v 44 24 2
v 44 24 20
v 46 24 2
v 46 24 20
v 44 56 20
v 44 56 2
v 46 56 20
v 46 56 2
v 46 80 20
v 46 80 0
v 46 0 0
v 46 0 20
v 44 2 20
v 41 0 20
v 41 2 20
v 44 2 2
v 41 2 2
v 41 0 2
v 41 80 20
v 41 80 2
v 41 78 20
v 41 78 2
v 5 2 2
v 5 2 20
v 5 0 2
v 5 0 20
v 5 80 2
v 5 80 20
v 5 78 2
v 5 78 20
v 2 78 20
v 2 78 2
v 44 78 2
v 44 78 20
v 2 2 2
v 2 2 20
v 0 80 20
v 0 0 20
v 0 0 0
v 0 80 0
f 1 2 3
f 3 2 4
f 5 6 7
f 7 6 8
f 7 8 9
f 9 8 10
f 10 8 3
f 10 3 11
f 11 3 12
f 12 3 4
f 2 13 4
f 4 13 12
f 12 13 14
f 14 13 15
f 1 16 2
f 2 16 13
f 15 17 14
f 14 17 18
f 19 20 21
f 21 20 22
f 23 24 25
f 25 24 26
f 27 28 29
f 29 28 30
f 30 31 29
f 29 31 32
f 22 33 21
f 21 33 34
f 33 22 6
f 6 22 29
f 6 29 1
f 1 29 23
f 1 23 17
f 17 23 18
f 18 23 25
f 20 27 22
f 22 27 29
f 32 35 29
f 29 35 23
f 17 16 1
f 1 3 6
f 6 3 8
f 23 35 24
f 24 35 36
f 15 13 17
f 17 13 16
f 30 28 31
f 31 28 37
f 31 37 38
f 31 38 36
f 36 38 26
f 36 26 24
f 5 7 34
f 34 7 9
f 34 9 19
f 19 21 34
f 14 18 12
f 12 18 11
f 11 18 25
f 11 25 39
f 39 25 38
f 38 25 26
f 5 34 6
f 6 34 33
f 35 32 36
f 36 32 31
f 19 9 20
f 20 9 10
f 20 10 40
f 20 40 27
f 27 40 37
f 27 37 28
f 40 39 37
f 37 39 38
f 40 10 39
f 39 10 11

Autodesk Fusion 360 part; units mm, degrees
sketch "Sketch1" plane through (0, 0, 0) normal (0, 0, 1) x (1, 0, 0)
  line L0 (0, 0) -> (46, 0)
  line L1 (46, 0) -> (46, 80)
  line L2 (46, 80) -> (0, 80)
  line L3 (0, 80) -> (0, 0)
  dimension "d1" = 46
  dimension "d2" = 80
extrude "Extrude1" add sketch "Sketch1" along normal blind 20
shell "Shell1" thickness 2 removed faces 1 at (15.3333, 53.3333, 20)
sketch "Sketch2" plane through (0, 0, 0) normal (0, -1, 0) x (1, 0, 0)
  line L0 (0, 0) -> (46, 0)
  line L1 (46, 0) -> (46, 20)
  line L2 (46, 20) -> (0, 20)
  line L3 (0, 20) -> (0, 0)
  line L4 (46, 20) -> (41, 20)
  line L5 (41, 20) -> (41, -16.068)
  line L6 (41, -16.068) -> (46, -16.068)
  line L7 (46, -16.068) -> (46, 20)
  line L8 (0, 0) -> (5, 0)
  line L9 (5, 0) -> (5, 36.068)
  line L10 (5, 36.068) -> (0, 36.068)
  line L11 (0, 36.068) -> (0, 0)
  line L12 (46, 0) -> (0, 0)
  line L13 (0, 0) -> (0, 2)
  line L14 (0, 2) -> (46, 2)
  line L15 (46, 2) -> (46, 0)
  dimension "d6" = 5
  dimension "d7" = 5
  dimension "d8" = 2
extrude "Extrude2" cut sketch "Sketch2" against normal blind 155 contours L2 L5 L9 L14
sketch "Sketch3" plane through (46, 0, 0) normal (1, 0, 0) x (0, 1, 0)
  line L0 (0, 0) -> (80, 0)
  line L1 (80, 0) -> (80, 20)
  line L2 (80, 20) -> (0, 20)
  line L3 (0, 20) -> (0, 0)
  line L4 (80, 0) -> (56, 0)
  line L5 (56, 0) -> (56, 36.068)
  line L6 (56, 36.068) -> (80, 36.068)
  line L7 (80, 36.068) -> (80, 0)
  line L8 (0, 20) -> (24, 20)
  line L9 (24, 20) -> (24, -16.068)
  line L10 (24, -16.068) -> (0, -16.068)
  line L11 (0, -16.068) -> (0, 20)
  line L12 (0, 0) -> (142, 0)
  line L13 (142, 0) -> (142, 2)
  line L14 (142, 2) -> (0, 2)
  line L15 (0, 2) -> (0, 0)
  dimension "d11" = 24
  dimension "d12" = 24
  dimension "d13" = 2
extrude "Extrude3" cut sketch "Sketch3" against normal blind 15 contours L2 L5 L9 L14
